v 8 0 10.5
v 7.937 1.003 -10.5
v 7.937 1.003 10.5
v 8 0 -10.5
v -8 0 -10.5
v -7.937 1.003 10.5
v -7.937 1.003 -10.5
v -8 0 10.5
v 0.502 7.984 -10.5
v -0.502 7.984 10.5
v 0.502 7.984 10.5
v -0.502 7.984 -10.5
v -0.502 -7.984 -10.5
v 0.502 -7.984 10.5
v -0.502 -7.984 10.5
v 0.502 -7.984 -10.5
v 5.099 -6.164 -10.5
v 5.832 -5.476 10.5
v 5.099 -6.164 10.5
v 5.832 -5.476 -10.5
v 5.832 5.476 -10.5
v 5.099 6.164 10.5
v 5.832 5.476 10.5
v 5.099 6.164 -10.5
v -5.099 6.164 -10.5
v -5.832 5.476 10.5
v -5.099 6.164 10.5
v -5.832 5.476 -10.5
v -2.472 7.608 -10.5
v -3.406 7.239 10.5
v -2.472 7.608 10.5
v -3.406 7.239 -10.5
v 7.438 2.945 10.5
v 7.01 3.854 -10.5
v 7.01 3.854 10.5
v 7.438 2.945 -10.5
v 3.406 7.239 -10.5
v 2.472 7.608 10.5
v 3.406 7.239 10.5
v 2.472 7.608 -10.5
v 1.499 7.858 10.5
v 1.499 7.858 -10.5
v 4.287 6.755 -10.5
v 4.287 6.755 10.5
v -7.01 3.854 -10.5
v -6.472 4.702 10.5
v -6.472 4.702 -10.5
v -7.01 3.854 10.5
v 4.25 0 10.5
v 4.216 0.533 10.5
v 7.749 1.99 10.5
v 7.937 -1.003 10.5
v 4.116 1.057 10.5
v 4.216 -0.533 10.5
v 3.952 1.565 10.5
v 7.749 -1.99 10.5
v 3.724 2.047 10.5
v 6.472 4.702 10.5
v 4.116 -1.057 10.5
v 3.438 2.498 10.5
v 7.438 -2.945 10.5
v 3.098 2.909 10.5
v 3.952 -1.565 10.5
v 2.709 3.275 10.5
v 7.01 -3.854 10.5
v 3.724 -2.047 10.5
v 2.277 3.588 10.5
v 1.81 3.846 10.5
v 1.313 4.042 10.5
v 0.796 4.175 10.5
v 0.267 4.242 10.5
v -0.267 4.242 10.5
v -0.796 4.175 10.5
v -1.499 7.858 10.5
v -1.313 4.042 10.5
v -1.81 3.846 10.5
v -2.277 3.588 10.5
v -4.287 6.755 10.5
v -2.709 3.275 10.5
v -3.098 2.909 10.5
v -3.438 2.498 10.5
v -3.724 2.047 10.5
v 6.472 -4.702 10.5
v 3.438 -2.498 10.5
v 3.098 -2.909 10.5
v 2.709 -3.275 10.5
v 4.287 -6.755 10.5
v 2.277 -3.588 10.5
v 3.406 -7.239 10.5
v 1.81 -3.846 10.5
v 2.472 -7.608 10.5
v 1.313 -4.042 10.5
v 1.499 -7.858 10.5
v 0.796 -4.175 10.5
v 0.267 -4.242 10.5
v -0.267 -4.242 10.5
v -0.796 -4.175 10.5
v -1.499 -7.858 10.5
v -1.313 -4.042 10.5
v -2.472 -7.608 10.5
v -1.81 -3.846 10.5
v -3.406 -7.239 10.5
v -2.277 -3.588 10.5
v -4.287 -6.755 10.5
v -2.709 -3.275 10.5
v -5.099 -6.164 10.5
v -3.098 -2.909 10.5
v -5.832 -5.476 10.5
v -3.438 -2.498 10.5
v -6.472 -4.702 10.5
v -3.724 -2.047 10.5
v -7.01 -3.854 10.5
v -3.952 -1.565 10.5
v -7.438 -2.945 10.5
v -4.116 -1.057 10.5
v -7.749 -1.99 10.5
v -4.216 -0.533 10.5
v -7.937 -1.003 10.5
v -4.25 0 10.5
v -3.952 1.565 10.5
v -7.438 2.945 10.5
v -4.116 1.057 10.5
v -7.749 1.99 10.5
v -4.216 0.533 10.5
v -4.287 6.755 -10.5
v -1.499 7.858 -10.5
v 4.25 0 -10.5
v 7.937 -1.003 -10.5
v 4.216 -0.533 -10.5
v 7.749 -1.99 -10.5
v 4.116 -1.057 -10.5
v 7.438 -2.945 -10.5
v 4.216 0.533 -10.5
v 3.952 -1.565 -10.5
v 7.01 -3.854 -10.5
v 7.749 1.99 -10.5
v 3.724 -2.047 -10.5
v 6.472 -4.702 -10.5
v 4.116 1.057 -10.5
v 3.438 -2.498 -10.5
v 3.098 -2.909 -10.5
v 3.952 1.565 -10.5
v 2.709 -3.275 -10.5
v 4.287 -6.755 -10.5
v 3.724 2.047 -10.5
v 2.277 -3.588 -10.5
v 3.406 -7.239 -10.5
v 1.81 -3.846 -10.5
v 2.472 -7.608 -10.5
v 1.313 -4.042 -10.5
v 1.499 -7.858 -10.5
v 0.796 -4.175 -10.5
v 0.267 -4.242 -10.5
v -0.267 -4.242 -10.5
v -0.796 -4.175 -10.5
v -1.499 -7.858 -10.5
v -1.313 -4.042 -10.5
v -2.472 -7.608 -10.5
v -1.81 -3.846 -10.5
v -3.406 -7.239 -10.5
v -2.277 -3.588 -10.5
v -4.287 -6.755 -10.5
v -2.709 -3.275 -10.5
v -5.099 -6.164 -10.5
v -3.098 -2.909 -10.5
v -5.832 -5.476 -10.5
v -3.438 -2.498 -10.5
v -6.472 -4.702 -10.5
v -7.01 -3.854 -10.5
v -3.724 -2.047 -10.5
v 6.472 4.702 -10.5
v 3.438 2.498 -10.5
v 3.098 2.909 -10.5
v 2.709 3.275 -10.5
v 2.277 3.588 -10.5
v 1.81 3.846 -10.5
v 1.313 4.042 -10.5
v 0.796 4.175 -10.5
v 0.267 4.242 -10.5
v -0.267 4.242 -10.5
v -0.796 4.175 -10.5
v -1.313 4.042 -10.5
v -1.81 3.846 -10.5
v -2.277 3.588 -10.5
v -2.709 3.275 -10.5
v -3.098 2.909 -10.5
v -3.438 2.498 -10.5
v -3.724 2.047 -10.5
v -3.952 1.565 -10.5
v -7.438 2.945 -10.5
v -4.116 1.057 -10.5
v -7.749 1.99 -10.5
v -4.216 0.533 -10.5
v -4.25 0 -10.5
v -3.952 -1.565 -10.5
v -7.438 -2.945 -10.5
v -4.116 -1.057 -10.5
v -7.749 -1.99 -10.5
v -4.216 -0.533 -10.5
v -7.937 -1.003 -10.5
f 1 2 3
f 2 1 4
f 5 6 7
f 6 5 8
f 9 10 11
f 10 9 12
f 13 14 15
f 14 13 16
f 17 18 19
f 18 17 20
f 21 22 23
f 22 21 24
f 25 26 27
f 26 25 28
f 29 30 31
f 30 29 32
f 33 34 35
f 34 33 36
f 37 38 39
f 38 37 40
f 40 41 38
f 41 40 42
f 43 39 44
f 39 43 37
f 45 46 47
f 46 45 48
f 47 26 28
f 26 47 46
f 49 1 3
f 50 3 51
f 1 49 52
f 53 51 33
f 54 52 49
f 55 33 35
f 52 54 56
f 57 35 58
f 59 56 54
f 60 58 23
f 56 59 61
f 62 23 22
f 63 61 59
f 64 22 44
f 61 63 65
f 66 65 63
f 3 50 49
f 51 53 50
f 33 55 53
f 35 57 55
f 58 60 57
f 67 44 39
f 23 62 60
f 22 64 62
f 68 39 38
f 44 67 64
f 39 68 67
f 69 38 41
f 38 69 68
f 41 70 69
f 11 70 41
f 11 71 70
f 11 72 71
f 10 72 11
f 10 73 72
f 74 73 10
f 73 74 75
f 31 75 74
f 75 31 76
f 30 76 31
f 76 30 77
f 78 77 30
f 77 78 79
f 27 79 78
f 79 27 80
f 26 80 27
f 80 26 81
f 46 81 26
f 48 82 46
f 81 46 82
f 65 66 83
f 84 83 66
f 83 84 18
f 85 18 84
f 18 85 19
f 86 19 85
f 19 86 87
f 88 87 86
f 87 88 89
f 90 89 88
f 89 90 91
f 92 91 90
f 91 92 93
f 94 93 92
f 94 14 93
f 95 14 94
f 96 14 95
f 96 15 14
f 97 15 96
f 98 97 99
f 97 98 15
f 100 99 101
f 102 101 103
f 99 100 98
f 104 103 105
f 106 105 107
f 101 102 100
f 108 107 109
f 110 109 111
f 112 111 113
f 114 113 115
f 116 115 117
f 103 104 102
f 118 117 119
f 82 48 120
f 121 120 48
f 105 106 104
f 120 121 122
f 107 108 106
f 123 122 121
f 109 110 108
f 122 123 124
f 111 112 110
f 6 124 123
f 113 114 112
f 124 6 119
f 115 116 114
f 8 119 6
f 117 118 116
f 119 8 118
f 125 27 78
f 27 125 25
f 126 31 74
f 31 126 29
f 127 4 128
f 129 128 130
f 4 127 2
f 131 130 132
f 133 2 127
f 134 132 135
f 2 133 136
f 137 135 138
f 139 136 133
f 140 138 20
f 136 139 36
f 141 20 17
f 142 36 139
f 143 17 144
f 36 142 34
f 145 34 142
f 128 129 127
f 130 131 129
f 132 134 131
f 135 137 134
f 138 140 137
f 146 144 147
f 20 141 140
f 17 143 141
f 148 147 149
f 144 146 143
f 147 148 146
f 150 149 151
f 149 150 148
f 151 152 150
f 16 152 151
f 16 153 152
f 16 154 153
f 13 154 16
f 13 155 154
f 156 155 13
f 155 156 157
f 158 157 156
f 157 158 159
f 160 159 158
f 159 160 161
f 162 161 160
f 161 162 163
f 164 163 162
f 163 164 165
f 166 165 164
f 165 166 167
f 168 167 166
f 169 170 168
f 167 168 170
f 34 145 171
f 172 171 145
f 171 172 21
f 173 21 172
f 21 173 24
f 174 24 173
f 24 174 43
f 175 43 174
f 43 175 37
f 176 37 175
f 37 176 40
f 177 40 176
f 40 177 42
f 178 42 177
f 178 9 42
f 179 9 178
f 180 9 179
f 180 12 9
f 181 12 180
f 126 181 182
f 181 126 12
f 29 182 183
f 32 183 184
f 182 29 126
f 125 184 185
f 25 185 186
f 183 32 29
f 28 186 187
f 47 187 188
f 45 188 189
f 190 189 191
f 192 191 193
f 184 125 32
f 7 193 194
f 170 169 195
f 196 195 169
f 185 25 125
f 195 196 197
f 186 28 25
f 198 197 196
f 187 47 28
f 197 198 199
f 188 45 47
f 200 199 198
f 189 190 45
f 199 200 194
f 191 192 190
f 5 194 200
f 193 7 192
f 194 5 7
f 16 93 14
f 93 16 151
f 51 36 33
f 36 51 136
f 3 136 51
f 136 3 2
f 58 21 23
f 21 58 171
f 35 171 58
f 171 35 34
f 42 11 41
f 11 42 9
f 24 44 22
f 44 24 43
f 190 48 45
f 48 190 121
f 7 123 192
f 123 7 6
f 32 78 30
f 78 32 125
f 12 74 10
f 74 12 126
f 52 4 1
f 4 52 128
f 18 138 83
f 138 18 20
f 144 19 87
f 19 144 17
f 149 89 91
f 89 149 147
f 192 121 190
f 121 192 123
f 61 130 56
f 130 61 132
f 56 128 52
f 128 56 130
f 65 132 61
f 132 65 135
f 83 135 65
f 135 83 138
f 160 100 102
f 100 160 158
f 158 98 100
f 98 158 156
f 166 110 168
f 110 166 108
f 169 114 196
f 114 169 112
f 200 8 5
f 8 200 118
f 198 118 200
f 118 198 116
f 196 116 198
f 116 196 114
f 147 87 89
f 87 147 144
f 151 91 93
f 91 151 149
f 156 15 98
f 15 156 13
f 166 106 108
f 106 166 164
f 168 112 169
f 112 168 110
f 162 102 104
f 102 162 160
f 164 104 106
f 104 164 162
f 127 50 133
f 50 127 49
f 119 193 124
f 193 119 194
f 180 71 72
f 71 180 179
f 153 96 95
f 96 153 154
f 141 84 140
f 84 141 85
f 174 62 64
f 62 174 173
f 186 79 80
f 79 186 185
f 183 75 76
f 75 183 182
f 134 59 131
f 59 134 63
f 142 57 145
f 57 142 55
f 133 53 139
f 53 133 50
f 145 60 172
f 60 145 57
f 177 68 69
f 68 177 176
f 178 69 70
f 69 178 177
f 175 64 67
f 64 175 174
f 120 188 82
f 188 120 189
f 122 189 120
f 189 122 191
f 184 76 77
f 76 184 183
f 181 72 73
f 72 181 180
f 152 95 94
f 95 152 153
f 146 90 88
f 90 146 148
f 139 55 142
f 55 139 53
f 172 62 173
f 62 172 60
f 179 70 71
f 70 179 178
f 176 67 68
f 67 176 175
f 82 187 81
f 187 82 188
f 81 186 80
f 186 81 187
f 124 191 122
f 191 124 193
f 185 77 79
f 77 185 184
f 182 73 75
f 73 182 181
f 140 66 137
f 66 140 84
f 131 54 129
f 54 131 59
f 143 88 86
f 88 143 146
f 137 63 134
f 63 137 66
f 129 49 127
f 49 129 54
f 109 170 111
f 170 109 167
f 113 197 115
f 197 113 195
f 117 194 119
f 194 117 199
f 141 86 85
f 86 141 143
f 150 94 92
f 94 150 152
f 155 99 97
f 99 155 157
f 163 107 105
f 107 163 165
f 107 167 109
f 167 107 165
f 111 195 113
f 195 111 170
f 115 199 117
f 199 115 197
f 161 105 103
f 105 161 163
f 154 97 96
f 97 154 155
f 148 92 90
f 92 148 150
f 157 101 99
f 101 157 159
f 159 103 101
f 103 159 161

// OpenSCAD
$fn = 50;


difference() {
	union() {
		translate(v = [0, 0, -10.5000000000]) {
			cylinder(h = 21, r = 8.0000000000);
		}
	}
	union() {
		translate(v = [0, 0, -100.0000000000]) {
			cylinder(h = 200, r = 4.2500000000);
		}
	}
}
